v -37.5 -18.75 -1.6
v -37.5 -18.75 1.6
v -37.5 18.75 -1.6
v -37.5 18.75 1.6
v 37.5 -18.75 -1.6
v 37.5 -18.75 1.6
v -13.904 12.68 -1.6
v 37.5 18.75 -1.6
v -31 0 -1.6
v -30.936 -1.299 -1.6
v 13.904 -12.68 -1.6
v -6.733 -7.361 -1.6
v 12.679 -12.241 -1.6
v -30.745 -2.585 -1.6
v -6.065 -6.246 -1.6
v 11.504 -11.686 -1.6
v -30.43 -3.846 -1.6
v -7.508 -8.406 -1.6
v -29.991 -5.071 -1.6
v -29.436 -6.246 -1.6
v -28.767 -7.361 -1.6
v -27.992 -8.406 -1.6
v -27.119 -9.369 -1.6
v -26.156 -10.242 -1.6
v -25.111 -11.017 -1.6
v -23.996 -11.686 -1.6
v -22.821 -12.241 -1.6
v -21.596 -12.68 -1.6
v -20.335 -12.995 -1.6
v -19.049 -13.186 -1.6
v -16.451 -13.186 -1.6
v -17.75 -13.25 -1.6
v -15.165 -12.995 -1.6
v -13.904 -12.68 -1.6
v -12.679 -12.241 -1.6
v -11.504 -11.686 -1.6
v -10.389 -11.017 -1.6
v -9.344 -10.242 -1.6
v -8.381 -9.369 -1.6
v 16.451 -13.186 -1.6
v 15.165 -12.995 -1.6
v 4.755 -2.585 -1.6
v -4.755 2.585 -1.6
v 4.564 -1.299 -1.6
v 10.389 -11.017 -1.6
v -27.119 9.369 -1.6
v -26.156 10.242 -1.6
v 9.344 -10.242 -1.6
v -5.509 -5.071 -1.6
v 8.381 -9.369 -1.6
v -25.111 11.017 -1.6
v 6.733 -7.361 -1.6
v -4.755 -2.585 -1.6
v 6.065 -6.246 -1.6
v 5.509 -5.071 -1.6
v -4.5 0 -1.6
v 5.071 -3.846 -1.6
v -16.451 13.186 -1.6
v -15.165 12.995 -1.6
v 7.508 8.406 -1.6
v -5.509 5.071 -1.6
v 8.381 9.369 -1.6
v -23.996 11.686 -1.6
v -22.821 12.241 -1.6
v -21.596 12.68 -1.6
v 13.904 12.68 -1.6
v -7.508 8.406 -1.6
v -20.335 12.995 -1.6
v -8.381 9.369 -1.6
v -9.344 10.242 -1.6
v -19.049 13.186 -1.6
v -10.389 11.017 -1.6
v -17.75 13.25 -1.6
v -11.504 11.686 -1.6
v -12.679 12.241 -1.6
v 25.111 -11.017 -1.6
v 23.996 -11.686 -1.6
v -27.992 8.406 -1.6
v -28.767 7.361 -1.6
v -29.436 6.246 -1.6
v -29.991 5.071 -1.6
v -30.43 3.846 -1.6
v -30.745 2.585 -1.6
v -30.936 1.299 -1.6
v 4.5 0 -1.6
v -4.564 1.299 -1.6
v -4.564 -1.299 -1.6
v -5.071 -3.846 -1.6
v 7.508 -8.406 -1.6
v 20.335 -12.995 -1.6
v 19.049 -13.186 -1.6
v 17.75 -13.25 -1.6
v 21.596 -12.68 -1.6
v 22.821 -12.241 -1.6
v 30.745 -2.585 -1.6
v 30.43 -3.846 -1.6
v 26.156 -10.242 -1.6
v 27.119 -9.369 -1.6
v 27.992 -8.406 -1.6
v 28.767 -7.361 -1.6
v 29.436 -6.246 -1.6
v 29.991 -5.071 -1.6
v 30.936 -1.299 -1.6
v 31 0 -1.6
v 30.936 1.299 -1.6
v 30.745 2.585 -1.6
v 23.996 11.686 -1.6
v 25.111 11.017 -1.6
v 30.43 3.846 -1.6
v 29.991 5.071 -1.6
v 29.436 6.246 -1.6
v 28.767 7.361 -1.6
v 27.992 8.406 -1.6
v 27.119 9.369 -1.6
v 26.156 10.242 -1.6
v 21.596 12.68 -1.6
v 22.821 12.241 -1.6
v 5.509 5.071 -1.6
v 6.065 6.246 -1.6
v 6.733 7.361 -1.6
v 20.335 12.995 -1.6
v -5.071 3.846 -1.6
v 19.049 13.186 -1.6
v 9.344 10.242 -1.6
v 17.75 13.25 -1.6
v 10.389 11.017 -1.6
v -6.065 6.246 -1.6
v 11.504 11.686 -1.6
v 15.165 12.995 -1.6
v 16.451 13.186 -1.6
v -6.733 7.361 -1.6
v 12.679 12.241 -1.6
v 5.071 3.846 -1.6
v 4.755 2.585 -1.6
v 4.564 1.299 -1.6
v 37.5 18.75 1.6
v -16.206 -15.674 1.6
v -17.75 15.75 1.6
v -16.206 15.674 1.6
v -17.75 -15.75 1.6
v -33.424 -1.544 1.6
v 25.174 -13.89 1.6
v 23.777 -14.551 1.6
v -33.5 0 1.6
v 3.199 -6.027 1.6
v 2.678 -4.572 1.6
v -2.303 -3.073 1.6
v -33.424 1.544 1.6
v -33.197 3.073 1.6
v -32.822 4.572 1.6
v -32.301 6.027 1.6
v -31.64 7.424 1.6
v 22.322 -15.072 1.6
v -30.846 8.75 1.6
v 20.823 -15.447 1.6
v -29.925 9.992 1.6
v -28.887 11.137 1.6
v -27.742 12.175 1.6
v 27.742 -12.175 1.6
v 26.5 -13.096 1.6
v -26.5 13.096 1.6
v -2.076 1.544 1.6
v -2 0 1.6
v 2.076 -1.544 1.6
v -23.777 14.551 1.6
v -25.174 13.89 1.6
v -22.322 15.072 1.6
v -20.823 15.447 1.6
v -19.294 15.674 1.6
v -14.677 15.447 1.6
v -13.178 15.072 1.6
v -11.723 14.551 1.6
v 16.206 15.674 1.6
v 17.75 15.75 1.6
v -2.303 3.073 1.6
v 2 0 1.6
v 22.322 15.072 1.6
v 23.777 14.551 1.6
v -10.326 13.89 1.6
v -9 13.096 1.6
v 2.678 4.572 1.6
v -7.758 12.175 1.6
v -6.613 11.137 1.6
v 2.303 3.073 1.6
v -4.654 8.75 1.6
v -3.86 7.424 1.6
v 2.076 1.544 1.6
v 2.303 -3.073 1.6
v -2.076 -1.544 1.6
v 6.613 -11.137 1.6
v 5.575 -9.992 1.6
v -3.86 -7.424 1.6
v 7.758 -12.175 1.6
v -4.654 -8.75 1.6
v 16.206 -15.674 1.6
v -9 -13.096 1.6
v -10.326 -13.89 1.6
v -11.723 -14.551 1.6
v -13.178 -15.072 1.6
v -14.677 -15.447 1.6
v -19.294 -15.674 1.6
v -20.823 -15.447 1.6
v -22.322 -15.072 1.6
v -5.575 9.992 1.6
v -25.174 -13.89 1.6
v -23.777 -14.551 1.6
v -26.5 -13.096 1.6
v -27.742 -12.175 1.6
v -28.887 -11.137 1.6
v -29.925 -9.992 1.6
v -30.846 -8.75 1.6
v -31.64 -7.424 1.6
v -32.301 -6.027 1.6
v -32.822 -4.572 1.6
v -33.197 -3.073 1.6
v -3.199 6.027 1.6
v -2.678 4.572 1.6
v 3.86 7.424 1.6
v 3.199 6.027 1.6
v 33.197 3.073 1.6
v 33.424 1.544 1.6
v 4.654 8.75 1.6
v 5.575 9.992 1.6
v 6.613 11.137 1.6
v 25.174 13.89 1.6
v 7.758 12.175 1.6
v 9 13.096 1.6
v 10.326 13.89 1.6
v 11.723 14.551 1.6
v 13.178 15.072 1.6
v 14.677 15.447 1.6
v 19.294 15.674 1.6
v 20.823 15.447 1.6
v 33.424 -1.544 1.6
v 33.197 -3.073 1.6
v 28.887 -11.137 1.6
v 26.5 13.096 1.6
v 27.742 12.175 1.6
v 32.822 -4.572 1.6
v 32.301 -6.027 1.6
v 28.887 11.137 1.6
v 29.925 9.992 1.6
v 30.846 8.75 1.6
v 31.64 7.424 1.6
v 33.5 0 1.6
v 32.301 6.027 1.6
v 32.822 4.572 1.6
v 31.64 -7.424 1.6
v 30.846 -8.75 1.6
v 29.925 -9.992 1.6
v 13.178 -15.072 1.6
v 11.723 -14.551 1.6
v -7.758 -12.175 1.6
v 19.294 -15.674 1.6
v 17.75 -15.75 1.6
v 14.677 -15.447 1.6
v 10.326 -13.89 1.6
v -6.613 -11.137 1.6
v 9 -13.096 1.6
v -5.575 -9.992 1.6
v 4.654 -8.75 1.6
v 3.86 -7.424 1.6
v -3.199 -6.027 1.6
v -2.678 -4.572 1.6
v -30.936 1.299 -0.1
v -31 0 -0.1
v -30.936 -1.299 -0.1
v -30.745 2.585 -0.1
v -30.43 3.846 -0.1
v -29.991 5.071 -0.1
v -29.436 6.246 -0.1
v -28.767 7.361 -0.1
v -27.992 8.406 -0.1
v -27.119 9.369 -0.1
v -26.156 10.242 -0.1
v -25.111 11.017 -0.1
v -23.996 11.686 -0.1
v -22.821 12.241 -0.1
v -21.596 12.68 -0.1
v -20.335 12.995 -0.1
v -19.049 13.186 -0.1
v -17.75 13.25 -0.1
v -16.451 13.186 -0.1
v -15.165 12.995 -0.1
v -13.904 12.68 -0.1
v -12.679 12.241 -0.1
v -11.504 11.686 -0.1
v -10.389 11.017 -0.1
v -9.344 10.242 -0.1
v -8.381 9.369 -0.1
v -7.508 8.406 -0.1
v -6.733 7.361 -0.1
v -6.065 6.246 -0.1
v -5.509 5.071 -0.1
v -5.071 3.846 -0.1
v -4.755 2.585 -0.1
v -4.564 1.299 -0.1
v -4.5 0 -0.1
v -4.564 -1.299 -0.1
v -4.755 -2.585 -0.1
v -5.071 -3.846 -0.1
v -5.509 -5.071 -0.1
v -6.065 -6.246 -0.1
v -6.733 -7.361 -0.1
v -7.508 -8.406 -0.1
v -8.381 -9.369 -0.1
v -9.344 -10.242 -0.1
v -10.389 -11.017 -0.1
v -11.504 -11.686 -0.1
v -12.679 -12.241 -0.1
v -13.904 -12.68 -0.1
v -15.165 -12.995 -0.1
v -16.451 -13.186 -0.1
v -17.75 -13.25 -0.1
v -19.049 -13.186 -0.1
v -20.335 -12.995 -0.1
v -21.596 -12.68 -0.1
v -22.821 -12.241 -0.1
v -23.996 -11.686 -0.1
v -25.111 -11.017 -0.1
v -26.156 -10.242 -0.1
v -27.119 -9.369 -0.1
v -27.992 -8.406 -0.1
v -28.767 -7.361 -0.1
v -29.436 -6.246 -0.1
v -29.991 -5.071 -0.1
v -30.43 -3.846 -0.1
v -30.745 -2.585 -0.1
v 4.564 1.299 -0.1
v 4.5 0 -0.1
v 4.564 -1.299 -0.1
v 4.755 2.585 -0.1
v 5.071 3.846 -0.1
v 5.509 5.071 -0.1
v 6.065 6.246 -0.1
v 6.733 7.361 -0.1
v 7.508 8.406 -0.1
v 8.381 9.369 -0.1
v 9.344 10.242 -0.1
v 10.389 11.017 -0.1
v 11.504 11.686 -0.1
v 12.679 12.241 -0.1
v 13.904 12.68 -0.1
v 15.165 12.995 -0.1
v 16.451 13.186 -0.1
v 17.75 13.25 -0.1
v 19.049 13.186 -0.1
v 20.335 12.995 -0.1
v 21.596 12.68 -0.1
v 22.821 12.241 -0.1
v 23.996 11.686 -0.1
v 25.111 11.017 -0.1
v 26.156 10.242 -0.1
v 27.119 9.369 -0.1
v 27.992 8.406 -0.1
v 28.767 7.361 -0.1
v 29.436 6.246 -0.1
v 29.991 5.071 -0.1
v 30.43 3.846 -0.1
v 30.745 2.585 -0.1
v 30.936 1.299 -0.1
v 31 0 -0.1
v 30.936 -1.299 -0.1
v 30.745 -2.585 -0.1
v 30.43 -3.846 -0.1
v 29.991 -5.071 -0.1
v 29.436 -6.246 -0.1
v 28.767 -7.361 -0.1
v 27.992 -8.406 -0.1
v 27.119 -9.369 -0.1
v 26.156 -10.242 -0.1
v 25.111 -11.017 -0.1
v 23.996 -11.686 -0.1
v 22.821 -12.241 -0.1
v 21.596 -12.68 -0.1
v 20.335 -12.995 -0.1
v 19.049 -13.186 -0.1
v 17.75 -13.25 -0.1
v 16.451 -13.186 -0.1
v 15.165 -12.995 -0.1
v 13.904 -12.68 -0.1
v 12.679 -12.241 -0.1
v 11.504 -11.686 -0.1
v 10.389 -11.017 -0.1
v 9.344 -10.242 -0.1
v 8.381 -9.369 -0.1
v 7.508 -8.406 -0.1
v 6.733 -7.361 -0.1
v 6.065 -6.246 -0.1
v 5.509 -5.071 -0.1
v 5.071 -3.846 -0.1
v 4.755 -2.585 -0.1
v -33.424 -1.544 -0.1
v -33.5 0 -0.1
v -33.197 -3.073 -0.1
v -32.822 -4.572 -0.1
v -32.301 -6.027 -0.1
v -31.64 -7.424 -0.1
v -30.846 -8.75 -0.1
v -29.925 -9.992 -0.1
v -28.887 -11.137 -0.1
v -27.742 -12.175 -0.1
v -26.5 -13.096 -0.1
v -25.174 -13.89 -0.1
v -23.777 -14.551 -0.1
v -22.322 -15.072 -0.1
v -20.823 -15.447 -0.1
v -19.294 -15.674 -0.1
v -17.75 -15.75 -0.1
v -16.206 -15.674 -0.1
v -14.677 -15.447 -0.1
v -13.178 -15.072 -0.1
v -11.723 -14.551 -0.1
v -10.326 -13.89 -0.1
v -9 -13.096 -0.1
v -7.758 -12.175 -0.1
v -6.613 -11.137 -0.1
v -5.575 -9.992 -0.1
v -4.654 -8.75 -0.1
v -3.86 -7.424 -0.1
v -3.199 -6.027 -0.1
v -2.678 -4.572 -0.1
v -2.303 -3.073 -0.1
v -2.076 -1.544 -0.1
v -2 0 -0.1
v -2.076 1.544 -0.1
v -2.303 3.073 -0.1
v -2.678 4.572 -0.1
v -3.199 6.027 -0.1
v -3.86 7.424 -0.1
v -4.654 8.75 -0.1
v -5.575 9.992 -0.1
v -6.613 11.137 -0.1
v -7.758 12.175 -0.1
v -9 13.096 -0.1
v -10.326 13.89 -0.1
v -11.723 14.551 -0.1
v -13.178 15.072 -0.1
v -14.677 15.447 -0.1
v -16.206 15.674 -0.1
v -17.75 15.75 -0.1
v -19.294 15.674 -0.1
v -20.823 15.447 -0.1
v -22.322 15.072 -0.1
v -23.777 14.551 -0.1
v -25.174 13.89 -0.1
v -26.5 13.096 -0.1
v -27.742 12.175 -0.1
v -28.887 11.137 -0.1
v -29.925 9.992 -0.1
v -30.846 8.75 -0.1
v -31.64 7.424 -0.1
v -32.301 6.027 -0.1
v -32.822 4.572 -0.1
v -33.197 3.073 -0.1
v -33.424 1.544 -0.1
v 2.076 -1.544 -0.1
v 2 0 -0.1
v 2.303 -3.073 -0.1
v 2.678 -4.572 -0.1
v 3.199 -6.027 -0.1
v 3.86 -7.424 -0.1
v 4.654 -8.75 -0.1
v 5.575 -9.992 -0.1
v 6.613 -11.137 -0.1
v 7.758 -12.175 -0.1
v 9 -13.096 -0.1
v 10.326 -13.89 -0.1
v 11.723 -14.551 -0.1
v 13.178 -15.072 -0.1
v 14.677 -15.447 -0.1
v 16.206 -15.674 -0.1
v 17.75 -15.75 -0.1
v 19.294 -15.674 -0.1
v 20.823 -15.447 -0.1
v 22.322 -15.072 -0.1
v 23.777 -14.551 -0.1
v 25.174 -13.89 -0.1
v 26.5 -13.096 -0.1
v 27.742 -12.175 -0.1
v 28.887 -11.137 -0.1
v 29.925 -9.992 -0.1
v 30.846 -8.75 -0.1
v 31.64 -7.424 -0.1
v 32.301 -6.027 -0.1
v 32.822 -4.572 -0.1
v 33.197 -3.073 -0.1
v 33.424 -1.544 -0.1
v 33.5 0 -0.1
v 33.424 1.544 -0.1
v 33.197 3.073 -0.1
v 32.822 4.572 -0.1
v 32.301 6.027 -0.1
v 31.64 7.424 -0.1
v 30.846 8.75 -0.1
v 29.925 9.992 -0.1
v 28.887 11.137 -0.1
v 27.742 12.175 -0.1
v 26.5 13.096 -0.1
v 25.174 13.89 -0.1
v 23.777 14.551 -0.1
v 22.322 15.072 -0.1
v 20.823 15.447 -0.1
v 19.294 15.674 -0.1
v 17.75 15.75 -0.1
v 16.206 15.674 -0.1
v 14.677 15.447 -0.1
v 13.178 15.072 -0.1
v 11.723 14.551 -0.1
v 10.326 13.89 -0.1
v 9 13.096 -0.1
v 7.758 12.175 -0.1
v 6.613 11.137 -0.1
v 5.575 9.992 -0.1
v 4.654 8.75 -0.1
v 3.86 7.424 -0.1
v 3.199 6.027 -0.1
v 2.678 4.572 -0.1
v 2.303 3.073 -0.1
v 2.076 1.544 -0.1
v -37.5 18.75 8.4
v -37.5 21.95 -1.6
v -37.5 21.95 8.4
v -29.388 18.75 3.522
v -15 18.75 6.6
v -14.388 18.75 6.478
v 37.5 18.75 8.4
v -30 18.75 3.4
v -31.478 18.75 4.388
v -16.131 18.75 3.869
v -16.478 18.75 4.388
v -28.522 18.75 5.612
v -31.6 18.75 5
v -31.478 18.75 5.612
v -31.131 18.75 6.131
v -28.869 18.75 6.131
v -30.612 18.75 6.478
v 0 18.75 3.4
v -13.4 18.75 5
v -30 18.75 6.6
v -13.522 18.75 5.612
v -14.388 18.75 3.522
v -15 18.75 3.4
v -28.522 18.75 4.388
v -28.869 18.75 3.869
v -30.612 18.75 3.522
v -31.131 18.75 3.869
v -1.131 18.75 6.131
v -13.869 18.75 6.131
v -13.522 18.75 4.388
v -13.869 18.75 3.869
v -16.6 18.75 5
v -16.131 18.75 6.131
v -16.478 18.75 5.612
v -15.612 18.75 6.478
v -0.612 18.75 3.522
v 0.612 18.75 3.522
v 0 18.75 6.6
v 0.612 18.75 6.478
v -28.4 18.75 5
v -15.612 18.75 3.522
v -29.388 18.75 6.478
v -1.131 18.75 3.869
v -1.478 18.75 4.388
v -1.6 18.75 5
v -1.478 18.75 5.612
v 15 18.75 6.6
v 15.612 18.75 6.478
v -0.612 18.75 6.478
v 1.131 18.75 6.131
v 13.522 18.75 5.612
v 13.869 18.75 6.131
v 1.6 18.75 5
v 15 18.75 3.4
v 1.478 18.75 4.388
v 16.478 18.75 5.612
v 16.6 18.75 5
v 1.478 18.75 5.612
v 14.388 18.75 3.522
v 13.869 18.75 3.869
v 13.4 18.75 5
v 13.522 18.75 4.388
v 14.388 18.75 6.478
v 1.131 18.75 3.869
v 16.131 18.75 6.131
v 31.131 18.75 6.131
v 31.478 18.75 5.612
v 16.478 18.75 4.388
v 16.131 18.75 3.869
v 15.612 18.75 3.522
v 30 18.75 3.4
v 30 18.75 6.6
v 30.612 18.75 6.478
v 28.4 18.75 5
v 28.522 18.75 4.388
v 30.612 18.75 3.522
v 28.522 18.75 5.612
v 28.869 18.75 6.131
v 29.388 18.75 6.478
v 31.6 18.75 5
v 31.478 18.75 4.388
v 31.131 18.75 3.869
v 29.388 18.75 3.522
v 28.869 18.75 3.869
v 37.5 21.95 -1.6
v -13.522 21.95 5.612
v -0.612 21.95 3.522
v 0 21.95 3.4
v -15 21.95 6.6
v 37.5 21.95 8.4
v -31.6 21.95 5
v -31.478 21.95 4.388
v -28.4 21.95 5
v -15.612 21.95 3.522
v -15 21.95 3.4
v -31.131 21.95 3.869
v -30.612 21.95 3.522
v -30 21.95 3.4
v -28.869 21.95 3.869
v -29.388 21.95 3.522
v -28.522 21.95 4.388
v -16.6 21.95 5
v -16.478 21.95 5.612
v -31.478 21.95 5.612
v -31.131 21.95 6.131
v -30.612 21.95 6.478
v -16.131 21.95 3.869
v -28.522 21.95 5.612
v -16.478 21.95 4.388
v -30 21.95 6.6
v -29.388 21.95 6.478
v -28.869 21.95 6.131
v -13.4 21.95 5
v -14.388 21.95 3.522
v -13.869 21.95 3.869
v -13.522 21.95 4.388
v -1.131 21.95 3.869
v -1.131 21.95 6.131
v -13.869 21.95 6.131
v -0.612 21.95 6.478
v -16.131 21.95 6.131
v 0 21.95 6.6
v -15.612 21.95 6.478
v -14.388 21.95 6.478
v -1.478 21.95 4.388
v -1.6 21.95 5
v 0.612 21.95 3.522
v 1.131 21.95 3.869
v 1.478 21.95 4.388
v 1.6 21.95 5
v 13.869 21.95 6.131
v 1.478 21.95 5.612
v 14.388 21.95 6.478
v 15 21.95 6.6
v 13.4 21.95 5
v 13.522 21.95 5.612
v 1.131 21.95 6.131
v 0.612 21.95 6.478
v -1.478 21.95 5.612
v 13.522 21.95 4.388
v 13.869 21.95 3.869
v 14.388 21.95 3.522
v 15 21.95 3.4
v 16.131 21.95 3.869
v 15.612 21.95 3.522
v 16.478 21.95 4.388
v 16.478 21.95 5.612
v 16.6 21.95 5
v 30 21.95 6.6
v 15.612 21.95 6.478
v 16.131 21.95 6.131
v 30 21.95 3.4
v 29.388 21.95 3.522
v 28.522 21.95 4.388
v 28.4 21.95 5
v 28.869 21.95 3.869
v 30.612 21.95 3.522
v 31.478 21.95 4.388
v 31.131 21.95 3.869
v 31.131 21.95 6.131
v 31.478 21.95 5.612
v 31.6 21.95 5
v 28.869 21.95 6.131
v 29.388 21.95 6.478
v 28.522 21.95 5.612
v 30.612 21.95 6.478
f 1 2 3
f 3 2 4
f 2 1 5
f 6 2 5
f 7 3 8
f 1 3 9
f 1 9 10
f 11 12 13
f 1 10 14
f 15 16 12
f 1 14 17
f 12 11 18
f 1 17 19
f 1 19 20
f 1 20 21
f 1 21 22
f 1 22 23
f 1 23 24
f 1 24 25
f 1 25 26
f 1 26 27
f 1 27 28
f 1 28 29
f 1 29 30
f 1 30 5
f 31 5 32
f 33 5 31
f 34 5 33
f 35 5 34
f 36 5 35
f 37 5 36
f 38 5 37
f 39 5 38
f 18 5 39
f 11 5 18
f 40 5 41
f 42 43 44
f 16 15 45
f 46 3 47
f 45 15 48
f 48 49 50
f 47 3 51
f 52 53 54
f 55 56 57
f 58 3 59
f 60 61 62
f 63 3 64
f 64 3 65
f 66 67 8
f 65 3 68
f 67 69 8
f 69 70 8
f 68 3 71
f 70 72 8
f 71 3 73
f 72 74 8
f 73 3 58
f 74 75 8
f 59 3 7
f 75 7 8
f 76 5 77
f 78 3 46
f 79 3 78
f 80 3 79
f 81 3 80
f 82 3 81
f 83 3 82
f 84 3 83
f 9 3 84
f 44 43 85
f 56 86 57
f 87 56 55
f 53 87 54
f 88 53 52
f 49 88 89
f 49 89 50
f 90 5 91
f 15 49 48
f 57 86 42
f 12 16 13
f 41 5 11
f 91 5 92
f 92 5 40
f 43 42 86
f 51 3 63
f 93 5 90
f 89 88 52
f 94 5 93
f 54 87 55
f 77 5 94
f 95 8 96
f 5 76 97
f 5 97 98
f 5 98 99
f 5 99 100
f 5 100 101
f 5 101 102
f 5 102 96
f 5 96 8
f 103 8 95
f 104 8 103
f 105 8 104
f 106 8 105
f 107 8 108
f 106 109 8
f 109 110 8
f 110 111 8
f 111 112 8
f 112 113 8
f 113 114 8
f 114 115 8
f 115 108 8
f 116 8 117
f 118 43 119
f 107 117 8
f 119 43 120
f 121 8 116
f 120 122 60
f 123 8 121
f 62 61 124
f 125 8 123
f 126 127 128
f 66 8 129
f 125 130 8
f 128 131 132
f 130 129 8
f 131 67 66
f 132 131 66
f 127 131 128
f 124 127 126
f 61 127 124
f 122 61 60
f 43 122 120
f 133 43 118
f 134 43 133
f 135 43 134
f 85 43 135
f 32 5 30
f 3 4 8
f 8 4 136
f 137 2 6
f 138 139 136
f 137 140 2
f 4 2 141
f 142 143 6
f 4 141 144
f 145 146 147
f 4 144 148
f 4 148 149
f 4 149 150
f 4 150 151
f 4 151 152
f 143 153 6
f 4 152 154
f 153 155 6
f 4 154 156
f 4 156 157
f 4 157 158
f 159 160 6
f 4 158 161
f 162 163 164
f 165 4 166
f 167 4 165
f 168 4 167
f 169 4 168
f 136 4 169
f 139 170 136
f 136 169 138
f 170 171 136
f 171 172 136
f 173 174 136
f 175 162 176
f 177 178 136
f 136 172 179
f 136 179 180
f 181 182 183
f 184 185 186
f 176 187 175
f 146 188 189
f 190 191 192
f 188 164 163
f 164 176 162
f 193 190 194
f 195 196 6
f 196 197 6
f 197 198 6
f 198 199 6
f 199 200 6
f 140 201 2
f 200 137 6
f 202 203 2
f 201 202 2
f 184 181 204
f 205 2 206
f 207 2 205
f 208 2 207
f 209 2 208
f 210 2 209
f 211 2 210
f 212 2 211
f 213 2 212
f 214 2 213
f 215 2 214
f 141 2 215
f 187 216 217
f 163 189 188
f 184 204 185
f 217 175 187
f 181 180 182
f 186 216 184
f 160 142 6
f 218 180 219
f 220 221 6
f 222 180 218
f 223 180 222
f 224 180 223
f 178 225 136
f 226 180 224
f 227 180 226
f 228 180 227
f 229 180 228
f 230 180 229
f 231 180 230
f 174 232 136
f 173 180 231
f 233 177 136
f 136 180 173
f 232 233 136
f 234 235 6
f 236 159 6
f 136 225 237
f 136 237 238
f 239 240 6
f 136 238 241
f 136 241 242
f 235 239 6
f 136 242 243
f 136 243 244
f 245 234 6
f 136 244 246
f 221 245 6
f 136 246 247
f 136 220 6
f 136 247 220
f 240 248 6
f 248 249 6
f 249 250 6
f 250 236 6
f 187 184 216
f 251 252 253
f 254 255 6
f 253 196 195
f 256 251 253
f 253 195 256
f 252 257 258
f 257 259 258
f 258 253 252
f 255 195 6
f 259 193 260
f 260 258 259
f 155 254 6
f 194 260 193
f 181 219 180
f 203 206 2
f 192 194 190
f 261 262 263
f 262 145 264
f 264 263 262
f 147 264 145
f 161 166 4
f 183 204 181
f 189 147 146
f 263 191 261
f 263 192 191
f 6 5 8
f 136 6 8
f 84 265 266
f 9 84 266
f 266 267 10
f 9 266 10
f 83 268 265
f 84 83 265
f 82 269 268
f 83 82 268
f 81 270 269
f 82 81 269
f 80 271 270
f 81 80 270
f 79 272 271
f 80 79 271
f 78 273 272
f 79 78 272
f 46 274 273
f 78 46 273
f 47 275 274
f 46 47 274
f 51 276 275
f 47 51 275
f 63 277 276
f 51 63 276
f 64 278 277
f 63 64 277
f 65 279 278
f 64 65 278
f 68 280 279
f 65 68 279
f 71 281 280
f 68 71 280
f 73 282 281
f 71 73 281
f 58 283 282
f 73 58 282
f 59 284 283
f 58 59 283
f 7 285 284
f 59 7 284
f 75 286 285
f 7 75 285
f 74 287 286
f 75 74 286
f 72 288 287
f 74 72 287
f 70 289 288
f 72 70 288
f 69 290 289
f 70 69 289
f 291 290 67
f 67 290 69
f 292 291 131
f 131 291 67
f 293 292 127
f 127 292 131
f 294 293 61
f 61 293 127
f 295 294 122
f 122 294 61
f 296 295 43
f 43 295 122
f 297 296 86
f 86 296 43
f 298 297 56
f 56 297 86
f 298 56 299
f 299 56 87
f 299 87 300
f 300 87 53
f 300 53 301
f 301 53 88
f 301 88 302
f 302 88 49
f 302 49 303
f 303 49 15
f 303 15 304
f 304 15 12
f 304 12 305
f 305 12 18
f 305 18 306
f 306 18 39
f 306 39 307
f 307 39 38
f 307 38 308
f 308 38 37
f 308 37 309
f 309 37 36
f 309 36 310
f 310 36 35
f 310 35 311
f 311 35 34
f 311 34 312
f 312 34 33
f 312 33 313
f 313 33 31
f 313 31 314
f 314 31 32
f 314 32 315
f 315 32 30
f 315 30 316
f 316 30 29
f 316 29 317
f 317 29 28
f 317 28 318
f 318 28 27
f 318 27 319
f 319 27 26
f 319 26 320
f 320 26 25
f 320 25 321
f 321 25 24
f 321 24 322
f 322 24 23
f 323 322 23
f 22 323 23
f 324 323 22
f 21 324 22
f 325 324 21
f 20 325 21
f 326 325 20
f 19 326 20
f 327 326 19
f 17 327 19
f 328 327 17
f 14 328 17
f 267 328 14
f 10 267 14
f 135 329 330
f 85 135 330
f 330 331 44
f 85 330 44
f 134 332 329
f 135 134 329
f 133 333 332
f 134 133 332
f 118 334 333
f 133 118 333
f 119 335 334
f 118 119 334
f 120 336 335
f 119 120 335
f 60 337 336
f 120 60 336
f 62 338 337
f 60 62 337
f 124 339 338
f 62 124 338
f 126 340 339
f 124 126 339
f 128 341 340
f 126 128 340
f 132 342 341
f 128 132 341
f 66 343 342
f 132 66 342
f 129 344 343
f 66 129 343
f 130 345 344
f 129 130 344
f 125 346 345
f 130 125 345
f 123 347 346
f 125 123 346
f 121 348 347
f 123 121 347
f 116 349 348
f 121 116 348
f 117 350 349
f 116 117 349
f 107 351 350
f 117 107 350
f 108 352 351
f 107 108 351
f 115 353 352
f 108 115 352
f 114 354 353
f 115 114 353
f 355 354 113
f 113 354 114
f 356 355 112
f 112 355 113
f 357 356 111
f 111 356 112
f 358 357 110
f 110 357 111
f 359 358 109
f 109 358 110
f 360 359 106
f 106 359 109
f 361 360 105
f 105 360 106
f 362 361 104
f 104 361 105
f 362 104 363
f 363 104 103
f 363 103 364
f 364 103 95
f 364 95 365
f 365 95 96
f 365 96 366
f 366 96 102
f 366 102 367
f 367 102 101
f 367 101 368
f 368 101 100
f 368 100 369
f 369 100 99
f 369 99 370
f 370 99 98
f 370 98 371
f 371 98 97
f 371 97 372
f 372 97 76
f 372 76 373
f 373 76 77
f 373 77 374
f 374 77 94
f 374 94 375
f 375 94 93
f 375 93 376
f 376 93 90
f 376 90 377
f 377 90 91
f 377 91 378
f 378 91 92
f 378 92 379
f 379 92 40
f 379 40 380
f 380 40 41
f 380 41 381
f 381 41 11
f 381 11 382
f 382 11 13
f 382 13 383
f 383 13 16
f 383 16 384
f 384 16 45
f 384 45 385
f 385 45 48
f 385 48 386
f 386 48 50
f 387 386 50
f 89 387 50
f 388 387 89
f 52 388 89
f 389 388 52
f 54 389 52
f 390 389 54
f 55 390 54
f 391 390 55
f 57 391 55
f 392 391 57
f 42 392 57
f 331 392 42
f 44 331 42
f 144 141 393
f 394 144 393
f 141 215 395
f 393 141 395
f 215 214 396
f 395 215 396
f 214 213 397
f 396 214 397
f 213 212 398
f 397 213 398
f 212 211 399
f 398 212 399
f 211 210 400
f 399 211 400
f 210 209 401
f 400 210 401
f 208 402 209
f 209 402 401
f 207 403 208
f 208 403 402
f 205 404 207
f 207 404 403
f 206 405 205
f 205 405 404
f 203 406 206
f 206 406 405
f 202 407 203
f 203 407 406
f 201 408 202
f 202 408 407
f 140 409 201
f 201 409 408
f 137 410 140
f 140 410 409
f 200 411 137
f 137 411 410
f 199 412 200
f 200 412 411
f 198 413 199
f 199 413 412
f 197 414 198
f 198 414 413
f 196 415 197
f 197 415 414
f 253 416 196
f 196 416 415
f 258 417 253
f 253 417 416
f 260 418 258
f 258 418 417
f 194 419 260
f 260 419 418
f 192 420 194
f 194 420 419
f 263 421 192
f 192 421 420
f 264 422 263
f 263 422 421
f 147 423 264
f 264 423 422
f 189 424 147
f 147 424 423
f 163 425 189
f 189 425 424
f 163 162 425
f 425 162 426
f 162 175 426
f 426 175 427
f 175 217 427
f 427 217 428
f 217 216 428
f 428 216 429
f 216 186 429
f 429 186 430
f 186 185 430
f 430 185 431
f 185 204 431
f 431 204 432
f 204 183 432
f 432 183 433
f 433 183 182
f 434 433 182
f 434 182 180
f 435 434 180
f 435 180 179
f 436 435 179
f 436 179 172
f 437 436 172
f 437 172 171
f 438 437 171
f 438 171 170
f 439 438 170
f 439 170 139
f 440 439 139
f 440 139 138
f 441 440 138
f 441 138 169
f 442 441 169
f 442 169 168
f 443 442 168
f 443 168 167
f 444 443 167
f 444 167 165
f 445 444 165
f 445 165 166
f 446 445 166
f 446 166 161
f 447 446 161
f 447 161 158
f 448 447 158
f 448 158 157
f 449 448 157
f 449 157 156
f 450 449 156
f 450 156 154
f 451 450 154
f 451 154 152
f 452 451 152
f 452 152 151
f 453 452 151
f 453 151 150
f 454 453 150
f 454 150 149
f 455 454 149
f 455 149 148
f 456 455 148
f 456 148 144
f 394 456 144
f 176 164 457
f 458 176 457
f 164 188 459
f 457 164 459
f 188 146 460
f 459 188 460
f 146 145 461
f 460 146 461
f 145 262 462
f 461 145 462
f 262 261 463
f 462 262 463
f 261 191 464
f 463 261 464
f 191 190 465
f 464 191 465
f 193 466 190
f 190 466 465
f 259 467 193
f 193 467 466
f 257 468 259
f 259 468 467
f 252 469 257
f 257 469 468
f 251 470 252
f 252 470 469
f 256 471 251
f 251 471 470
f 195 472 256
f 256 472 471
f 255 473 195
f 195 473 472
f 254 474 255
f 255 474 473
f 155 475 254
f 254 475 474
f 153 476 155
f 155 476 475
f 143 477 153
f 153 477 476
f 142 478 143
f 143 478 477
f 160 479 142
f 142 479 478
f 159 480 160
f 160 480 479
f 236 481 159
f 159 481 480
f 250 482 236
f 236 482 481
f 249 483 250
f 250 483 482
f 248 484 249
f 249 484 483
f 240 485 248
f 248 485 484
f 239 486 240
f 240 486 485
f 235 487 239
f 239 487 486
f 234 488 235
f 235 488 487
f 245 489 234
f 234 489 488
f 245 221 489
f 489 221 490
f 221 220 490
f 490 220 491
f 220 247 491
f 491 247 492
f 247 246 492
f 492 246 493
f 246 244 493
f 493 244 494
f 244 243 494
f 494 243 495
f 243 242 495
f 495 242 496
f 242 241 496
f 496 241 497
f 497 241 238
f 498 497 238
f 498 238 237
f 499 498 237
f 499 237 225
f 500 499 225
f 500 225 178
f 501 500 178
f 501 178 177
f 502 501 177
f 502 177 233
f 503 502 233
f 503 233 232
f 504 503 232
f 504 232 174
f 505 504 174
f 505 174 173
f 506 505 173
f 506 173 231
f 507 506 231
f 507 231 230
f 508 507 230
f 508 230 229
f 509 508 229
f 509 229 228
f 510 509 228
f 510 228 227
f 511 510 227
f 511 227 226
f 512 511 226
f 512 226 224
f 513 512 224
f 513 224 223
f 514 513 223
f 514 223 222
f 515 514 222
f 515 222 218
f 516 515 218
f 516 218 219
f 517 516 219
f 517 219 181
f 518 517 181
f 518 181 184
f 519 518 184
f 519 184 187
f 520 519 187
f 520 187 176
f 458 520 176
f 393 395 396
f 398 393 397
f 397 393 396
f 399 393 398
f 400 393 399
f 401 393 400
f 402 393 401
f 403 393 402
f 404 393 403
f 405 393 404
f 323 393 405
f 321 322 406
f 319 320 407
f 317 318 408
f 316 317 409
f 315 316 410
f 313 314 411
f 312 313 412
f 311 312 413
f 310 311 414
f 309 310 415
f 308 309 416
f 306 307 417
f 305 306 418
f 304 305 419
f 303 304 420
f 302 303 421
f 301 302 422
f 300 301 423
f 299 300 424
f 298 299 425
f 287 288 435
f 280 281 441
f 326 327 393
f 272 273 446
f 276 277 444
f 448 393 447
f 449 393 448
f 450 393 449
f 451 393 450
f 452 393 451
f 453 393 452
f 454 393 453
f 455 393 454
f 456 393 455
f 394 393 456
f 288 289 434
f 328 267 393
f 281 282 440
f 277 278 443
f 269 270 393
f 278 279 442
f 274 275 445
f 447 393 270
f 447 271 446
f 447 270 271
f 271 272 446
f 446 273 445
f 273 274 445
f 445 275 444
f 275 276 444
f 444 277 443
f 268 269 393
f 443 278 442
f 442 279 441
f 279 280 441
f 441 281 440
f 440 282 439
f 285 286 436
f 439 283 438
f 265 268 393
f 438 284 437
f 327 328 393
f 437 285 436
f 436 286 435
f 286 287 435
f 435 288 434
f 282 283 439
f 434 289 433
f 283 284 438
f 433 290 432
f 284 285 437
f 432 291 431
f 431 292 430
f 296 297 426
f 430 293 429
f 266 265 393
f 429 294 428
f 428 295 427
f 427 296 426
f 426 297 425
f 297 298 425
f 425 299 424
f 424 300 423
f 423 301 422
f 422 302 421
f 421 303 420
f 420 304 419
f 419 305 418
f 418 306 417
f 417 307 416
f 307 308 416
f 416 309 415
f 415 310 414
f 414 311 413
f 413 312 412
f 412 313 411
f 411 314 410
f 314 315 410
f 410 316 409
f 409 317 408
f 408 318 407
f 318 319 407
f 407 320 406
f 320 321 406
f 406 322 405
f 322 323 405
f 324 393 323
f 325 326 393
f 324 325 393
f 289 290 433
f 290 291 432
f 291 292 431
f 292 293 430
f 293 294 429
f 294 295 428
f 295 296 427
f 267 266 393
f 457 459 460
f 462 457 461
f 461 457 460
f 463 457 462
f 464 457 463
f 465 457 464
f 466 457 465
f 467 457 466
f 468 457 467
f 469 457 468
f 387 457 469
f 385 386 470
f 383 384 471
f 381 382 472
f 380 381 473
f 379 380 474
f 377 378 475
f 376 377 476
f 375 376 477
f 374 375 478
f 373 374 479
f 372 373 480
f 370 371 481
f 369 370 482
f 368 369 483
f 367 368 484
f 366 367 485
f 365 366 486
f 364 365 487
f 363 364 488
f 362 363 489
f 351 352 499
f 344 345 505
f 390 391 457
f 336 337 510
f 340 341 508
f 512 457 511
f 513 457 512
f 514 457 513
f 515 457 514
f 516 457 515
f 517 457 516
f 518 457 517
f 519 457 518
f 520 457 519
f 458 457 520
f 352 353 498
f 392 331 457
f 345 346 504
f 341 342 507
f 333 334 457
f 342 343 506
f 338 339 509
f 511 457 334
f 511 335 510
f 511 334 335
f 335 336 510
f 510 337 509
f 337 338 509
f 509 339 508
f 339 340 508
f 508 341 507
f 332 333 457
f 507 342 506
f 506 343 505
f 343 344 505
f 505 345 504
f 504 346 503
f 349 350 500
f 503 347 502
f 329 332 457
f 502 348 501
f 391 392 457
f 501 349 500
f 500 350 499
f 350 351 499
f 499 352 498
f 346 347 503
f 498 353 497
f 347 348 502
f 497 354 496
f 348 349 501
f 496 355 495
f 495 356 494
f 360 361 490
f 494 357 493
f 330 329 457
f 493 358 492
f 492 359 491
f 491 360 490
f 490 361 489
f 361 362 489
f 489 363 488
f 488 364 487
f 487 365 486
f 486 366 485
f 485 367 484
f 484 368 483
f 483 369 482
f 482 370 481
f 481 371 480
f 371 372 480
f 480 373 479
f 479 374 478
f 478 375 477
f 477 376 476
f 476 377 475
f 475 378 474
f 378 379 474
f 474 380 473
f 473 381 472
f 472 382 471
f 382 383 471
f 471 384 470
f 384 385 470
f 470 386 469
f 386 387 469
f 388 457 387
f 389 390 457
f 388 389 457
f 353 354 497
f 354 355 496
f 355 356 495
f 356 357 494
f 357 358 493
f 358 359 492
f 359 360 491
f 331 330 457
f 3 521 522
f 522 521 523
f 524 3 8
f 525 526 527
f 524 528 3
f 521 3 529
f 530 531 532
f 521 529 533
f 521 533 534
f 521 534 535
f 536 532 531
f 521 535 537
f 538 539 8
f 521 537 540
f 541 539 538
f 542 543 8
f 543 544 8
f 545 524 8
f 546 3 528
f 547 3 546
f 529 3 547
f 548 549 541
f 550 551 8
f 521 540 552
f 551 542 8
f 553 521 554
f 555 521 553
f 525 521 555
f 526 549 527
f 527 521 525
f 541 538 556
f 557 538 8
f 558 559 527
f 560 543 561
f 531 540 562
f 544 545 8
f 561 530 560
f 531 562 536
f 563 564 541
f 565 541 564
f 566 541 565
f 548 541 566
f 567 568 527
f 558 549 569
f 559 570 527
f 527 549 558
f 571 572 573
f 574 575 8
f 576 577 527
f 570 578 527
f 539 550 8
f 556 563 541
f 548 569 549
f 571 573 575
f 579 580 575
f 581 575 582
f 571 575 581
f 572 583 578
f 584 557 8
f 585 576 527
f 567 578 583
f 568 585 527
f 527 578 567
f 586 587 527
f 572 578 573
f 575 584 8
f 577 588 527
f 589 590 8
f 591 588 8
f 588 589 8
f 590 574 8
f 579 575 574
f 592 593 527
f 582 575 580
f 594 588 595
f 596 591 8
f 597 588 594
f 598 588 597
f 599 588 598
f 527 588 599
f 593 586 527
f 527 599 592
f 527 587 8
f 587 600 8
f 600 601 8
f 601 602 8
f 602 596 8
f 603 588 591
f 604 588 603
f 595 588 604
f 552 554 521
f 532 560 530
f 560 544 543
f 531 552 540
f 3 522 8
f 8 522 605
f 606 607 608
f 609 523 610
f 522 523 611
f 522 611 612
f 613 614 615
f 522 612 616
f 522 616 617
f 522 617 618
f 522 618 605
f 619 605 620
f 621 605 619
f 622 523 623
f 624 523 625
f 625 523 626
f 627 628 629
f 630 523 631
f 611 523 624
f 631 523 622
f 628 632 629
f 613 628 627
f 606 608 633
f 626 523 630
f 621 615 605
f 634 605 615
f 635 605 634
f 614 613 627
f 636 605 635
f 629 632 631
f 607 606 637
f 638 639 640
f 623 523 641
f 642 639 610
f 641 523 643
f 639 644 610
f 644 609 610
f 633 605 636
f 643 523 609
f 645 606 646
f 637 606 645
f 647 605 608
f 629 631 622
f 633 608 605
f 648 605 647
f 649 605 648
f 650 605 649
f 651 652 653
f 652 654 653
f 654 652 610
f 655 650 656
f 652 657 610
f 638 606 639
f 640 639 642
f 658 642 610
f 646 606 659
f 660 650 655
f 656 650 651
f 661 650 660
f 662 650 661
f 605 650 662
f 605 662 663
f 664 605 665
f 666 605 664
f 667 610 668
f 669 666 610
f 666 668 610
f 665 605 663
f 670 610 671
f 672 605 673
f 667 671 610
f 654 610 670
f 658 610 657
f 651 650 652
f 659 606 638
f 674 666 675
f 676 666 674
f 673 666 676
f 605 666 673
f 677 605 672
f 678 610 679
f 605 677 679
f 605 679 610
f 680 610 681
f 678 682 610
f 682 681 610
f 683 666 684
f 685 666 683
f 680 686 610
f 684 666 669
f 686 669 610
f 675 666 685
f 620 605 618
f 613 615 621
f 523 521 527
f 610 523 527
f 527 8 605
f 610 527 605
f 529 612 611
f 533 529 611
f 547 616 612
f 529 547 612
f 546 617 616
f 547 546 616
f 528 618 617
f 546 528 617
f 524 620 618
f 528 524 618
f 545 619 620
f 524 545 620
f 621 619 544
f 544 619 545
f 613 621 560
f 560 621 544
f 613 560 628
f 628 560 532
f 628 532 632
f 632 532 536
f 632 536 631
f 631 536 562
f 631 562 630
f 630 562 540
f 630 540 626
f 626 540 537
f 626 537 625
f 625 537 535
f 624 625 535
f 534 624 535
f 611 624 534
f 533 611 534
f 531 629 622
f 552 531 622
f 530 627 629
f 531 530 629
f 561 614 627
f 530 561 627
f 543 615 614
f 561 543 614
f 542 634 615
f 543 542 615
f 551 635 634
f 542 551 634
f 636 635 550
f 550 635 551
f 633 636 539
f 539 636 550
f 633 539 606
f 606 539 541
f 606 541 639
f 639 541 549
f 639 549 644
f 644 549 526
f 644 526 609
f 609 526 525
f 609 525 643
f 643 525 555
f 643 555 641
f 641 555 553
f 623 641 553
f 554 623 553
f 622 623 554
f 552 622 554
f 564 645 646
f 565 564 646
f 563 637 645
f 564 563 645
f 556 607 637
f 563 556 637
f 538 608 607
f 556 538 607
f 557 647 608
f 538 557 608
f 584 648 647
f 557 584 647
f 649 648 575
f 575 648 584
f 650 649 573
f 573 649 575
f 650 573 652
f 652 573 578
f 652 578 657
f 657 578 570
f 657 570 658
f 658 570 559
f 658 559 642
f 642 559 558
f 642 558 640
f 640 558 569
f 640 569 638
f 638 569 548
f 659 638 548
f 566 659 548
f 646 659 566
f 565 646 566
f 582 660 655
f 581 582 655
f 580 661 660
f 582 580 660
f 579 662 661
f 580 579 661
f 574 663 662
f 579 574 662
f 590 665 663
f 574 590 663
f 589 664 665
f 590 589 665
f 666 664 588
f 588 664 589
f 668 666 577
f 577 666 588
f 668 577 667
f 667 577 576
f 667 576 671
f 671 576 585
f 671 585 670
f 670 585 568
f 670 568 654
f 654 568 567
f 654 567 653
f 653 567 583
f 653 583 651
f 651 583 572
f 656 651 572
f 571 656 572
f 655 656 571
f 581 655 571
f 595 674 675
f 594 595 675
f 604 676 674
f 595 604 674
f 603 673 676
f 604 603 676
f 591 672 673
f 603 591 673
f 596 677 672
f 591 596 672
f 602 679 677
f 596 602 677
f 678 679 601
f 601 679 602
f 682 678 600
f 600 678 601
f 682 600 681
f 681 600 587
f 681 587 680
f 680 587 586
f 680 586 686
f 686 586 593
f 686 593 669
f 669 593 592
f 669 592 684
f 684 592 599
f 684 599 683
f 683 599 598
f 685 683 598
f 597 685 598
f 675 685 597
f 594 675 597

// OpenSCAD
speakerOuter = 31.5;
speakerInner = 26.5;
speakerTickness = 2.2;
tickness = 3.2;


module speakerHole() {
	$fn = 64;
	innerHeight = tickness - speakerTickness;

	cylinder(h=speakerTickness, r=speakerOuter/2, center=true);
	translate([0, 0, -(speakerTickness/2 + (tickness - speakerTickness) / 2)])
		cylinder(h=innerHeight+2, r=speakerInner/2, center=true);
}

module screwHoler() {
	$fn = 16;
	difference() {
		cube(size=[(speakerOuter+6) * 2, tickness, 10], center=true);
		translate([0, 0, 1.6]) rotate([90, 0, 0]) cylinder(r=1.6, h=tickness+1, center=true);
		translate([15, 0, 1.6]) rotate([90, 0, 0]) cylinder(r=1.6, h=tickness+1, center=true);
		translate([30, 0, 1.6]) rotate([90, 0, 0]) cylinder(r=1.6, h=tickness+1, center=true);
		translate([-15, 0, 1.6]) rotate([90, 0, 0]) cylinder(r=1.6, h=tickness+1, center=true);
		translate([-30, 0, 1.6]) rotate([90, 0, 0]) cylinder(r=1.6, h=tickness+1, center=true);
	}
}


difference() {
	union() {
		cube(size=[(speakerOuter+6) * 2, speakerOuter+6, tickness], center=true);
		translate([0, (speakerOuter+6)/2 + tickness/2, 10/2 - tickness/2]) 
		screwHoler();
	}
	union() {
		translate([-speakerOuter/2-2, 0, 1])
			speakerHole();
		translate([speakerOuter/2+2, 0, 1])
			speakerHole();
	}
}
